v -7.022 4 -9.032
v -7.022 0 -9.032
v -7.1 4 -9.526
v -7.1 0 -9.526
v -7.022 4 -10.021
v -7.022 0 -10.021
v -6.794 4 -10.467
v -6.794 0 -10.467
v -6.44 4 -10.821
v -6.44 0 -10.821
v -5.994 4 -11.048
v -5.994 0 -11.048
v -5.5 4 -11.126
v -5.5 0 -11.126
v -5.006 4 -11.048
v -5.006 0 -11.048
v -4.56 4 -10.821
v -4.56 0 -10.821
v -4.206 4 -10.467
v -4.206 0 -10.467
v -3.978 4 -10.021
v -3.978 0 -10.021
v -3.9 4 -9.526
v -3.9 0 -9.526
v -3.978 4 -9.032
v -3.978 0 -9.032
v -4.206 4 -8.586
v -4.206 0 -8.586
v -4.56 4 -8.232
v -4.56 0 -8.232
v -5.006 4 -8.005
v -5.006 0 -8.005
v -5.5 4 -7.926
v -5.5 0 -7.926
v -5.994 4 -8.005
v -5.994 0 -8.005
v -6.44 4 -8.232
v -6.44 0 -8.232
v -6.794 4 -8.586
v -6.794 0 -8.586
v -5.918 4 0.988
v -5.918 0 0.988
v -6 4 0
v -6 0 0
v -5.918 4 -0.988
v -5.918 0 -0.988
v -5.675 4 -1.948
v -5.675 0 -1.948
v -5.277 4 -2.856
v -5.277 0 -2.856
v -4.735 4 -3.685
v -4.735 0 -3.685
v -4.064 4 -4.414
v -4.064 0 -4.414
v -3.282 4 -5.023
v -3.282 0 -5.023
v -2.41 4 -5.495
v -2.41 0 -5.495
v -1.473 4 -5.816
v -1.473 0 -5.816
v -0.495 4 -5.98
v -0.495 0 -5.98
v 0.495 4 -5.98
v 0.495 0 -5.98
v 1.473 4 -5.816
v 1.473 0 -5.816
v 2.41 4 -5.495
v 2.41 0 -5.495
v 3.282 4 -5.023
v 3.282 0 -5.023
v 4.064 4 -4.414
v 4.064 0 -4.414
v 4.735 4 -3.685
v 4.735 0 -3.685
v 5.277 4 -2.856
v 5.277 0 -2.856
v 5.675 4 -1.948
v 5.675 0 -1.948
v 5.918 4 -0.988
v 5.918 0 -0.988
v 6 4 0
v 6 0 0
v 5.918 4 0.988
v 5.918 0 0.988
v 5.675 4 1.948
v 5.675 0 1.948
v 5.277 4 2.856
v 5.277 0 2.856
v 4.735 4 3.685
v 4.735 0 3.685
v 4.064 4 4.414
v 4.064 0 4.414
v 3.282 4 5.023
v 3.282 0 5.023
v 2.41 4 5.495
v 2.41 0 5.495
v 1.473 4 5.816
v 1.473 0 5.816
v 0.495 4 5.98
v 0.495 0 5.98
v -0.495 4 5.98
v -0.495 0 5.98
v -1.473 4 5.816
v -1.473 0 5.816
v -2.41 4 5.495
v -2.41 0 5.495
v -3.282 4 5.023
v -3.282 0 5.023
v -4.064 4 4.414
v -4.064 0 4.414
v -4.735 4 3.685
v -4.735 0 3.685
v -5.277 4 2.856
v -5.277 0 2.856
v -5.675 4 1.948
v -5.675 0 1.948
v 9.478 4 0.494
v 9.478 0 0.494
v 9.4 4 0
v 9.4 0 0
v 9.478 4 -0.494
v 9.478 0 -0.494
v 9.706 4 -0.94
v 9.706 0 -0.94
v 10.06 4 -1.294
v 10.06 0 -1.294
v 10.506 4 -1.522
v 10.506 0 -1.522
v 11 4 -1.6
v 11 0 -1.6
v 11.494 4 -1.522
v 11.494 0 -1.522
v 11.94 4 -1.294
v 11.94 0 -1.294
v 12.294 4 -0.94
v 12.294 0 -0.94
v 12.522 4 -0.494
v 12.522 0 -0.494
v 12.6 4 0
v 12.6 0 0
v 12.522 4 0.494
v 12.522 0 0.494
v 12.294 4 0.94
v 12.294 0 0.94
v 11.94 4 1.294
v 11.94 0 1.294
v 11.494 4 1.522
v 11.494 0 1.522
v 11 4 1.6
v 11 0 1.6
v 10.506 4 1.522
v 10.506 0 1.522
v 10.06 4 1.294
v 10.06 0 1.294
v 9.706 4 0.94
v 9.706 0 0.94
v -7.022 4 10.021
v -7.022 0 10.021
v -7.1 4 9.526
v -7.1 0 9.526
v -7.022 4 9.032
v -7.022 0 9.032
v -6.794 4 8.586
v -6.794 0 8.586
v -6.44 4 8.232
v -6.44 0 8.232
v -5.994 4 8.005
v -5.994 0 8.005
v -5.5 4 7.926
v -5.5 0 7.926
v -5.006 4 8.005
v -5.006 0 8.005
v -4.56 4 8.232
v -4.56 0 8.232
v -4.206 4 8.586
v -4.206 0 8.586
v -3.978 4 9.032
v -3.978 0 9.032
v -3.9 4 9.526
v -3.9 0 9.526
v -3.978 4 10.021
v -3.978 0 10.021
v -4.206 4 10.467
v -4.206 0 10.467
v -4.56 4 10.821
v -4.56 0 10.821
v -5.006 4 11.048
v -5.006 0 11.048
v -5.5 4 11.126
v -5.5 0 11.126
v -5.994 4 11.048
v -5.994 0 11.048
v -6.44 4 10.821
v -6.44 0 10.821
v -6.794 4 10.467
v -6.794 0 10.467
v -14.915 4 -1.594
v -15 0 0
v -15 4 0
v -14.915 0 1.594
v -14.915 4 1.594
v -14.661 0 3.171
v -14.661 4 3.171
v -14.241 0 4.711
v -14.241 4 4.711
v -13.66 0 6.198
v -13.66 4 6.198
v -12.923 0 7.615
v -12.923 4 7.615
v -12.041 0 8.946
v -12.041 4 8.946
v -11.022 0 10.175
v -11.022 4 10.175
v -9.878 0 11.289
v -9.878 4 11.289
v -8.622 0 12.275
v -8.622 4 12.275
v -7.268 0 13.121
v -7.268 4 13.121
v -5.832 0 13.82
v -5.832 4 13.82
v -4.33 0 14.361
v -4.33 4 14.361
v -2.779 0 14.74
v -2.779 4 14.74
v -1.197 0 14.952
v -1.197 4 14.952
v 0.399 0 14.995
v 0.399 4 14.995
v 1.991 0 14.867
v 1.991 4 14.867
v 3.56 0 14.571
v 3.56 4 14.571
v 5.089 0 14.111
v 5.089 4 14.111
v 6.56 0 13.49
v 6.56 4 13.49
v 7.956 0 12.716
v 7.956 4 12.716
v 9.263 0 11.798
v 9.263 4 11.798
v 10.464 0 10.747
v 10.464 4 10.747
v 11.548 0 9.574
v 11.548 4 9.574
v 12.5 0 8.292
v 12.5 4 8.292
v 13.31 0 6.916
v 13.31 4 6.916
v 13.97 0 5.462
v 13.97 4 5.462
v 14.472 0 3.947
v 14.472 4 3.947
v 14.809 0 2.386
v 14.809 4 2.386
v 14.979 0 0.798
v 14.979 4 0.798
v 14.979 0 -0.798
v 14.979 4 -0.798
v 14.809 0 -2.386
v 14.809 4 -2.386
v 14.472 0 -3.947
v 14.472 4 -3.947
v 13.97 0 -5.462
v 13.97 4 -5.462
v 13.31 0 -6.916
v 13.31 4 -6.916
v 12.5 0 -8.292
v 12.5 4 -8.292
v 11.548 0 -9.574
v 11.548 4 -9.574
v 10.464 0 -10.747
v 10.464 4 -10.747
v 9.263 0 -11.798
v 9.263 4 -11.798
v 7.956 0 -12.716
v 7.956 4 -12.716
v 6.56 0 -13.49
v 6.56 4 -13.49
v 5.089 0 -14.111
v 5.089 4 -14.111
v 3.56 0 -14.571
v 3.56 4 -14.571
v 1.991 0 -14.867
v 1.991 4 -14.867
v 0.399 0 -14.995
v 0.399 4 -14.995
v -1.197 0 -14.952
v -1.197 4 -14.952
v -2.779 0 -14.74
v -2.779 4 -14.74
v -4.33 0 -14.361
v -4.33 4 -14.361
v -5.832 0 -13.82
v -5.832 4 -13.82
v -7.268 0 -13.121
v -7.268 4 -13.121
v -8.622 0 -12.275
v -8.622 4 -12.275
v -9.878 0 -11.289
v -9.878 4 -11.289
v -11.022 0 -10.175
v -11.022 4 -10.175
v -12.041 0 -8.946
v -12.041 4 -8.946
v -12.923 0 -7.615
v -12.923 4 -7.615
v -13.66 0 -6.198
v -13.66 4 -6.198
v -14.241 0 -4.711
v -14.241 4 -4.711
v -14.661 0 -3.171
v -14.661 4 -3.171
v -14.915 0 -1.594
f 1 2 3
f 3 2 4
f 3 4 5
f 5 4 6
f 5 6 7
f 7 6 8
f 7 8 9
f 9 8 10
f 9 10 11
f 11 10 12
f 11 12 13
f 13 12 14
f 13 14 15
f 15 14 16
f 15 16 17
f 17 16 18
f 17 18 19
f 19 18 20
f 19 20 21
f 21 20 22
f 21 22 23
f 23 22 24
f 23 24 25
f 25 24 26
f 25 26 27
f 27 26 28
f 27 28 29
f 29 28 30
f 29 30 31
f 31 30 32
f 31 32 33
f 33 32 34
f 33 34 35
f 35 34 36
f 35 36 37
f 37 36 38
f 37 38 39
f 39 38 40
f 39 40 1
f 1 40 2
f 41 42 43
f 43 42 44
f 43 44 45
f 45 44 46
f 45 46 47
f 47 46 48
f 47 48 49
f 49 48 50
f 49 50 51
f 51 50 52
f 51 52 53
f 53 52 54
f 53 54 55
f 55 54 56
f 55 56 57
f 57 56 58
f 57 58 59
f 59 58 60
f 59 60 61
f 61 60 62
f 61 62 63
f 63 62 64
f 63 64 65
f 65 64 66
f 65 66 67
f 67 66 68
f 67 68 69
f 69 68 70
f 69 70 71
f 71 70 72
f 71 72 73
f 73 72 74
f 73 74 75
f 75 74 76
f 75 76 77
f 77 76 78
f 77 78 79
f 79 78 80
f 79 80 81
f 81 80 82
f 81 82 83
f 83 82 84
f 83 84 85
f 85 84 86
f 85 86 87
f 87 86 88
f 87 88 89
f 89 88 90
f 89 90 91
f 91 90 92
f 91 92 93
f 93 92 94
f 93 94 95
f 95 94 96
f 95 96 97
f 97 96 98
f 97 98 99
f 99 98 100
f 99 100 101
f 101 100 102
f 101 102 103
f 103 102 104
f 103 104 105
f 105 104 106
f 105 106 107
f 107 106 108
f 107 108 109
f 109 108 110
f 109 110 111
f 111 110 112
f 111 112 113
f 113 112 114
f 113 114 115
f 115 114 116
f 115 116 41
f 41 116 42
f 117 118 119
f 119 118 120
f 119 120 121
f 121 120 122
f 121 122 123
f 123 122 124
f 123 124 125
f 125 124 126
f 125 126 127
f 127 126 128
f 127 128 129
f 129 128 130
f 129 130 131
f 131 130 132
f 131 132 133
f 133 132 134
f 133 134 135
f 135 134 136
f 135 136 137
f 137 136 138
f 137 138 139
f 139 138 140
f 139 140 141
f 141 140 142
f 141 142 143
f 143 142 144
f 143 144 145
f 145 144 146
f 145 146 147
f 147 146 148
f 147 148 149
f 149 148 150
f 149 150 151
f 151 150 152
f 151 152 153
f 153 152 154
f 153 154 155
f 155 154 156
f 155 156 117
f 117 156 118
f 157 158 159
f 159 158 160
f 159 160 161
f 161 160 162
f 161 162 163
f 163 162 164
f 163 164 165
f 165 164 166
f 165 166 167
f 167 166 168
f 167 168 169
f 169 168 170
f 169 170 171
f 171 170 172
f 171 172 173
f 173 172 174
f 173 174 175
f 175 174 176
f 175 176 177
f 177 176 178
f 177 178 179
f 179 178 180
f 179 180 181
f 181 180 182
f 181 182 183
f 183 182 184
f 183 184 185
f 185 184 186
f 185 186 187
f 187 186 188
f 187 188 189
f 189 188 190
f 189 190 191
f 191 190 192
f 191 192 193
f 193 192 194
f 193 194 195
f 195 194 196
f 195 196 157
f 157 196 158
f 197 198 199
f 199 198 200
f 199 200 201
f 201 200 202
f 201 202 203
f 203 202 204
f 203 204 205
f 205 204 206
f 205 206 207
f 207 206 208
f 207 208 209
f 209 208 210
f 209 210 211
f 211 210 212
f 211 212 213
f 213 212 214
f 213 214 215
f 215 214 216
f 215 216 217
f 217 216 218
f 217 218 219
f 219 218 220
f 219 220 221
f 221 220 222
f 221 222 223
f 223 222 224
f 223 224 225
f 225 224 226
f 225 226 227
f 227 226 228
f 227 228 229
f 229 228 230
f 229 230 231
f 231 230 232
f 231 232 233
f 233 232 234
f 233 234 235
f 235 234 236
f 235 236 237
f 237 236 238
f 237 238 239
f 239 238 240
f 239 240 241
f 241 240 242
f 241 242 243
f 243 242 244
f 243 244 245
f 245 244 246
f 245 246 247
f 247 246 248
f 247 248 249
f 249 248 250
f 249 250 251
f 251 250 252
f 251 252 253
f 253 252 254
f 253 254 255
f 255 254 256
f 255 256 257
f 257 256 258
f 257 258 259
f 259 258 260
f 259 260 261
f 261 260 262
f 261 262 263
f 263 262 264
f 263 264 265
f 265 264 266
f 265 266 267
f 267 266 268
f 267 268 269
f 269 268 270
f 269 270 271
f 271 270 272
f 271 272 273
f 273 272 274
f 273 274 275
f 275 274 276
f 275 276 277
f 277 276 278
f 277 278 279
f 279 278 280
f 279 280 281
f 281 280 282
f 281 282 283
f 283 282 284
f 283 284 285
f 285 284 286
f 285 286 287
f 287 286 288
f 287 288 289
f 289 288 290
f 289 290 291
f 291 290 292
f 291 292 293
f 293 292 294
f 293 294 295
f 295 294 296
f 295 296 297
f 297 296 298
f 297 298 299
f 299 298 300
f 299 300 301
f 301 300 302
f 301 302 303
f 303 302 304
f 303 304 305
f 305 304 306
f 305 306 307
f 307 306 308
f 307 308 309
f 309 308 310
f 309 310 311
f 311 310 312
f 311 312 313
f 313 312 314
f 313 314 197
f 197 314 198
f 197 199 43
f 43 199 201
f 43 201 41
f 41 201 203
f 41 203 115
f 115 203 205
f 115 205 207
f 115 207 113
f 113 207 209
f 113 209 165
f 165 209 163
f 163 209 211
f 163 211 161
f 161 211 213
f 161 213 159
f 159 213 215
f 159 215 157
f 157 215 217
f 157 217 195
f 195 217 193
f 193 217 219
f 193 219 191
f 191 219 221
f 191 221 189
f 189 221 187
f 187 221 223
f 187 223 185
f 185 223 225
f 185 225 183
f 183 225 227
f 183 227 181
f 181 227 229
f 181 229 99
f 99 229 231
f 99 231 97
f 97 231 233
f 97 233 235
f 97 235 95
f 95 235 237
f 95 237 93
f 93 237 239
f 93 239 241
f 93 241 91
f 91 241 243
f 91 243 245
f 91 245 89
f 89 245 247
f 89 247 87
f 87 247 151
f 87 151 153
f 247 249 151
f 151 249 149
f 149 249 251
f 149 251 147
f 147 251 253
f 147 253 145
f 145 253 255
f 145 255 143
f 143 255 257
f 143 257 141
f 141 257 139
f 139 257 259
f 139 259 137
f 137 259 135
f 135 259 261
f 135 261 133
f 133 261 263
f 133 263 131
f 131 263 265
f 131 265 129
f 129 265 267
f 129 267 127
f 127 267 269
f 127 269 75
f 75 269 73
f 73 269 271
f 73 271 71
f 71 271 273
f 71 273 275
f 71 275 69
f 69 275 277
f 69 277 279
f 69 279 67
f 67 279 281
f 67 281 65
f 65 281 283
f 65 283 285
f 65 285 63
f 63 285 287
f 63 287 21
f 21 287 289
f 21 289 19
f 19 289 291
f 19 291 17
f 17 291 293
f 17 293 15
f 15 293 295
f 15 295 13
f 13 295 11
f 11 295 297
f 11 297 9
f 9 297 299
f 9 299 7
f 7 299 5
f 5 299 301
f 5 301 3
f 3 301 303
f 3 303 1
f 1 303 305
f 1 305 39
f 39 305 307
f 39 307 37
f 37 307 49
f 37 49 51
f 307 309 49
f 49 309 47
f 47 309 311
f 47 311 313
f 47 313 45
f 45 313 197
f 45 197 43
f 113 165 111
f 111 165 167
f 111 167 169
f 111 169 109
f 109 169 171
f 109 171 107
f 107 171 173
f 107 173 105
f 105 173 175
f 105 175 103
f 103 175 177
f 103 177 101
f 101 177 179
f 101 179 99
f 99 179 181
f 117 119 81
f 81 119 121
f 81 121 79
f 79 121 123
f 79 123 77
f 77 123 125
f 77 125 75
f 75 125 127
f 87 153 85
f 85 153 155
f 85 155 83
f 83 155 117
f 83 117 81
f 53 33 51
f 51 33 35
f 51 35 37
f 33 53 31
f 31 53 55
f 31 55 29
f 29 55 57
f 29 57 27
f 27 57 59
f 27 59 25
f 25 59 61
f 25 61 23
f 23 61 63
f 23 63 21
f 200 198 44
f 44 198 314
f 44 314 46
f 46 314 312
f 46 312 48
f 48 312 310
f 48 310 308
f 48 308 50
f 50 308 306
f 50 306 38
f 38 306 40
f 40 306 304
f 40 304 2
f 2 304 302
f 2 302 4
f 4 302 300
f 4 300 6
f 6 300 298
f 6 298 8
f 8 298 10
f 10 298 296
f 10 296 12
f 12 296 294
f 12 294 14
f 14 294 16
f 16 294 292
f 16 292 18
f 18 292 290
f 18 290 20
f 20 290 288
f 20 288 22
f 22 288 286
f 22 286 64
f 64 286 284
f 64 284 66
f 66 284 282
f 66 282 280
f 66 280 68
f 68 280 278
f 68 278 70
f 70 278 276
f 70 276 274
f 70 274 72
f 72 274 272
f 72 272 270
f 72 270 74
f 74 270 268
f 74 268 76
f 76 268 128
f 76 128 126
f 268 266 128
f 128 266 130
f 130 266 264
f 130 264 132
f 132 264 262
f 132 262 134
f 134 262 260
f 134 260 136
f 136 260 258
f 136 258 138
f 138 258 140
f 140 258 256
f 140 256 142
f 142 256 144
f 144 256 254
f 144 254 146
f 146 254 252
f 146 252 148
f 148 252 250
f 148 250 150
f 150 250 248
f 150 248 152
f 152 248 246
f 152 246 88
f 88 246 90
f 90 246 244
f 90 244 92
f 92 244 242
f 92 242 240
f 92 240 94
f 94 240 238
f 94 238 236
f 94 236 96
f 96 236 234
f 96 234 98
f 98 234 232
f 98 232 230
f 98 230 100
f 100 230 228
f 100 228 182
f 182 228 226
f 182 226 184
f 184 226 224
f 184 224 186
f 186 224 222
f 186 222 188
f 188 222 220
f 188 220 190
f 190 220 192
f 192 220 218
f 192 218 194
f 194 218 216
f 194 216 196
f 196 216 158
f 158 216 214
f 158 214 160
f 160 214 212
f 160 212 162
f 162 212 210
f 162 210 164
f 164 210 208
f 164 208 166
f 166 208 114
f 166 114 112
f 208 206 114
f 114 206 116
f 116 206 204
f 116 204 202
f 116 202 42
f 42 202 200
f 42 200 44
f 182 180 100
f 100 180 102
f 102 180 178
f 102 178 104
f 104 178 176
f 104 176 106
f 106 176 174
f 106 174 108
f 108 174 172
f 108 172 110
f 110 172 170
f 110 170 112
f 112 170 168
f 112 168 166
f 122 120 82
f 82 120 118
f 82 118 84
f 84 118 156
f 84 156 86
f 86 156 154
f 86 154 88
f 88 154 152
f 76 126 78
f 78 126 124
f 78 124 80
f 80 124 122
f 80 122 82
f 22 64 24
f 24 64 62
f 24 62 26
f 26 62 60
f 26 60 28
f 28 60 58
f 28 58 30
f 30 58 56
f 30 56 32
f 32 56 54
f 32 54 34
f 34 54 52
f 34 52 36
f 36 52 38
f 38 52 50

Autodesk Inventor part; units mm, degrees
ref_plane "YZ Plane" through (0, 0, 0) normal (1, 0, 0) x (0, 1, 0)
ref_plane "XZ Plane" through (0, 0, 0) normal (0, 1, 0) x (-1, 0, 0)
ref_plane "XY Plane" through (0, 0, 0) normal (0, 0, 1) x (1, 0, 0)
sketch "Skizze1" plane through (0, 0, 0) normal (0, 1, 0) x (-1, 0, 0)
  circle A0 centre (0, 0) radius 15
  circle A1 centre (0, 0) radius 6
  circle A2 centre (0, 0) radius 11
  line L0 (0, 0) -> (-26.7883, 0)
  line L1 (0, 0) -> (13.3942, -23.1994)
  line L2 (0, 0) -> (13.3942, 23.1994)
  circle A3 centre (5.5, -9.5263) radius 1.6
  circle A4 centre (5.5, 9.5263) radius 1.6
  circle A5 centre (-11, 0) radius 1.6
  dimension "d0" = 30
  dimension "d1" = 12
  dimension "d3" = 22
  dimension "d6" = 360
  dimension "d8" = 3.2
  dimension "d9" = 3.2
  dimension "d10" = 3.2
extrude "Extrusion1" add sketch "Skizze1" along normal blind 4 contours A0 L1 A3 A2 A4 L2 | L2 A4 A2 A5 L0 A0 | A0 L0 A5 A2 A3 L1 | A4 L2 A1 L0 A5 A2 | A2 A5 L0 A1 L1 A3 | A2 A3 L1 A1 L2 A4
properties part number "01-03-01-02 Zeichnung Zange links oben"
